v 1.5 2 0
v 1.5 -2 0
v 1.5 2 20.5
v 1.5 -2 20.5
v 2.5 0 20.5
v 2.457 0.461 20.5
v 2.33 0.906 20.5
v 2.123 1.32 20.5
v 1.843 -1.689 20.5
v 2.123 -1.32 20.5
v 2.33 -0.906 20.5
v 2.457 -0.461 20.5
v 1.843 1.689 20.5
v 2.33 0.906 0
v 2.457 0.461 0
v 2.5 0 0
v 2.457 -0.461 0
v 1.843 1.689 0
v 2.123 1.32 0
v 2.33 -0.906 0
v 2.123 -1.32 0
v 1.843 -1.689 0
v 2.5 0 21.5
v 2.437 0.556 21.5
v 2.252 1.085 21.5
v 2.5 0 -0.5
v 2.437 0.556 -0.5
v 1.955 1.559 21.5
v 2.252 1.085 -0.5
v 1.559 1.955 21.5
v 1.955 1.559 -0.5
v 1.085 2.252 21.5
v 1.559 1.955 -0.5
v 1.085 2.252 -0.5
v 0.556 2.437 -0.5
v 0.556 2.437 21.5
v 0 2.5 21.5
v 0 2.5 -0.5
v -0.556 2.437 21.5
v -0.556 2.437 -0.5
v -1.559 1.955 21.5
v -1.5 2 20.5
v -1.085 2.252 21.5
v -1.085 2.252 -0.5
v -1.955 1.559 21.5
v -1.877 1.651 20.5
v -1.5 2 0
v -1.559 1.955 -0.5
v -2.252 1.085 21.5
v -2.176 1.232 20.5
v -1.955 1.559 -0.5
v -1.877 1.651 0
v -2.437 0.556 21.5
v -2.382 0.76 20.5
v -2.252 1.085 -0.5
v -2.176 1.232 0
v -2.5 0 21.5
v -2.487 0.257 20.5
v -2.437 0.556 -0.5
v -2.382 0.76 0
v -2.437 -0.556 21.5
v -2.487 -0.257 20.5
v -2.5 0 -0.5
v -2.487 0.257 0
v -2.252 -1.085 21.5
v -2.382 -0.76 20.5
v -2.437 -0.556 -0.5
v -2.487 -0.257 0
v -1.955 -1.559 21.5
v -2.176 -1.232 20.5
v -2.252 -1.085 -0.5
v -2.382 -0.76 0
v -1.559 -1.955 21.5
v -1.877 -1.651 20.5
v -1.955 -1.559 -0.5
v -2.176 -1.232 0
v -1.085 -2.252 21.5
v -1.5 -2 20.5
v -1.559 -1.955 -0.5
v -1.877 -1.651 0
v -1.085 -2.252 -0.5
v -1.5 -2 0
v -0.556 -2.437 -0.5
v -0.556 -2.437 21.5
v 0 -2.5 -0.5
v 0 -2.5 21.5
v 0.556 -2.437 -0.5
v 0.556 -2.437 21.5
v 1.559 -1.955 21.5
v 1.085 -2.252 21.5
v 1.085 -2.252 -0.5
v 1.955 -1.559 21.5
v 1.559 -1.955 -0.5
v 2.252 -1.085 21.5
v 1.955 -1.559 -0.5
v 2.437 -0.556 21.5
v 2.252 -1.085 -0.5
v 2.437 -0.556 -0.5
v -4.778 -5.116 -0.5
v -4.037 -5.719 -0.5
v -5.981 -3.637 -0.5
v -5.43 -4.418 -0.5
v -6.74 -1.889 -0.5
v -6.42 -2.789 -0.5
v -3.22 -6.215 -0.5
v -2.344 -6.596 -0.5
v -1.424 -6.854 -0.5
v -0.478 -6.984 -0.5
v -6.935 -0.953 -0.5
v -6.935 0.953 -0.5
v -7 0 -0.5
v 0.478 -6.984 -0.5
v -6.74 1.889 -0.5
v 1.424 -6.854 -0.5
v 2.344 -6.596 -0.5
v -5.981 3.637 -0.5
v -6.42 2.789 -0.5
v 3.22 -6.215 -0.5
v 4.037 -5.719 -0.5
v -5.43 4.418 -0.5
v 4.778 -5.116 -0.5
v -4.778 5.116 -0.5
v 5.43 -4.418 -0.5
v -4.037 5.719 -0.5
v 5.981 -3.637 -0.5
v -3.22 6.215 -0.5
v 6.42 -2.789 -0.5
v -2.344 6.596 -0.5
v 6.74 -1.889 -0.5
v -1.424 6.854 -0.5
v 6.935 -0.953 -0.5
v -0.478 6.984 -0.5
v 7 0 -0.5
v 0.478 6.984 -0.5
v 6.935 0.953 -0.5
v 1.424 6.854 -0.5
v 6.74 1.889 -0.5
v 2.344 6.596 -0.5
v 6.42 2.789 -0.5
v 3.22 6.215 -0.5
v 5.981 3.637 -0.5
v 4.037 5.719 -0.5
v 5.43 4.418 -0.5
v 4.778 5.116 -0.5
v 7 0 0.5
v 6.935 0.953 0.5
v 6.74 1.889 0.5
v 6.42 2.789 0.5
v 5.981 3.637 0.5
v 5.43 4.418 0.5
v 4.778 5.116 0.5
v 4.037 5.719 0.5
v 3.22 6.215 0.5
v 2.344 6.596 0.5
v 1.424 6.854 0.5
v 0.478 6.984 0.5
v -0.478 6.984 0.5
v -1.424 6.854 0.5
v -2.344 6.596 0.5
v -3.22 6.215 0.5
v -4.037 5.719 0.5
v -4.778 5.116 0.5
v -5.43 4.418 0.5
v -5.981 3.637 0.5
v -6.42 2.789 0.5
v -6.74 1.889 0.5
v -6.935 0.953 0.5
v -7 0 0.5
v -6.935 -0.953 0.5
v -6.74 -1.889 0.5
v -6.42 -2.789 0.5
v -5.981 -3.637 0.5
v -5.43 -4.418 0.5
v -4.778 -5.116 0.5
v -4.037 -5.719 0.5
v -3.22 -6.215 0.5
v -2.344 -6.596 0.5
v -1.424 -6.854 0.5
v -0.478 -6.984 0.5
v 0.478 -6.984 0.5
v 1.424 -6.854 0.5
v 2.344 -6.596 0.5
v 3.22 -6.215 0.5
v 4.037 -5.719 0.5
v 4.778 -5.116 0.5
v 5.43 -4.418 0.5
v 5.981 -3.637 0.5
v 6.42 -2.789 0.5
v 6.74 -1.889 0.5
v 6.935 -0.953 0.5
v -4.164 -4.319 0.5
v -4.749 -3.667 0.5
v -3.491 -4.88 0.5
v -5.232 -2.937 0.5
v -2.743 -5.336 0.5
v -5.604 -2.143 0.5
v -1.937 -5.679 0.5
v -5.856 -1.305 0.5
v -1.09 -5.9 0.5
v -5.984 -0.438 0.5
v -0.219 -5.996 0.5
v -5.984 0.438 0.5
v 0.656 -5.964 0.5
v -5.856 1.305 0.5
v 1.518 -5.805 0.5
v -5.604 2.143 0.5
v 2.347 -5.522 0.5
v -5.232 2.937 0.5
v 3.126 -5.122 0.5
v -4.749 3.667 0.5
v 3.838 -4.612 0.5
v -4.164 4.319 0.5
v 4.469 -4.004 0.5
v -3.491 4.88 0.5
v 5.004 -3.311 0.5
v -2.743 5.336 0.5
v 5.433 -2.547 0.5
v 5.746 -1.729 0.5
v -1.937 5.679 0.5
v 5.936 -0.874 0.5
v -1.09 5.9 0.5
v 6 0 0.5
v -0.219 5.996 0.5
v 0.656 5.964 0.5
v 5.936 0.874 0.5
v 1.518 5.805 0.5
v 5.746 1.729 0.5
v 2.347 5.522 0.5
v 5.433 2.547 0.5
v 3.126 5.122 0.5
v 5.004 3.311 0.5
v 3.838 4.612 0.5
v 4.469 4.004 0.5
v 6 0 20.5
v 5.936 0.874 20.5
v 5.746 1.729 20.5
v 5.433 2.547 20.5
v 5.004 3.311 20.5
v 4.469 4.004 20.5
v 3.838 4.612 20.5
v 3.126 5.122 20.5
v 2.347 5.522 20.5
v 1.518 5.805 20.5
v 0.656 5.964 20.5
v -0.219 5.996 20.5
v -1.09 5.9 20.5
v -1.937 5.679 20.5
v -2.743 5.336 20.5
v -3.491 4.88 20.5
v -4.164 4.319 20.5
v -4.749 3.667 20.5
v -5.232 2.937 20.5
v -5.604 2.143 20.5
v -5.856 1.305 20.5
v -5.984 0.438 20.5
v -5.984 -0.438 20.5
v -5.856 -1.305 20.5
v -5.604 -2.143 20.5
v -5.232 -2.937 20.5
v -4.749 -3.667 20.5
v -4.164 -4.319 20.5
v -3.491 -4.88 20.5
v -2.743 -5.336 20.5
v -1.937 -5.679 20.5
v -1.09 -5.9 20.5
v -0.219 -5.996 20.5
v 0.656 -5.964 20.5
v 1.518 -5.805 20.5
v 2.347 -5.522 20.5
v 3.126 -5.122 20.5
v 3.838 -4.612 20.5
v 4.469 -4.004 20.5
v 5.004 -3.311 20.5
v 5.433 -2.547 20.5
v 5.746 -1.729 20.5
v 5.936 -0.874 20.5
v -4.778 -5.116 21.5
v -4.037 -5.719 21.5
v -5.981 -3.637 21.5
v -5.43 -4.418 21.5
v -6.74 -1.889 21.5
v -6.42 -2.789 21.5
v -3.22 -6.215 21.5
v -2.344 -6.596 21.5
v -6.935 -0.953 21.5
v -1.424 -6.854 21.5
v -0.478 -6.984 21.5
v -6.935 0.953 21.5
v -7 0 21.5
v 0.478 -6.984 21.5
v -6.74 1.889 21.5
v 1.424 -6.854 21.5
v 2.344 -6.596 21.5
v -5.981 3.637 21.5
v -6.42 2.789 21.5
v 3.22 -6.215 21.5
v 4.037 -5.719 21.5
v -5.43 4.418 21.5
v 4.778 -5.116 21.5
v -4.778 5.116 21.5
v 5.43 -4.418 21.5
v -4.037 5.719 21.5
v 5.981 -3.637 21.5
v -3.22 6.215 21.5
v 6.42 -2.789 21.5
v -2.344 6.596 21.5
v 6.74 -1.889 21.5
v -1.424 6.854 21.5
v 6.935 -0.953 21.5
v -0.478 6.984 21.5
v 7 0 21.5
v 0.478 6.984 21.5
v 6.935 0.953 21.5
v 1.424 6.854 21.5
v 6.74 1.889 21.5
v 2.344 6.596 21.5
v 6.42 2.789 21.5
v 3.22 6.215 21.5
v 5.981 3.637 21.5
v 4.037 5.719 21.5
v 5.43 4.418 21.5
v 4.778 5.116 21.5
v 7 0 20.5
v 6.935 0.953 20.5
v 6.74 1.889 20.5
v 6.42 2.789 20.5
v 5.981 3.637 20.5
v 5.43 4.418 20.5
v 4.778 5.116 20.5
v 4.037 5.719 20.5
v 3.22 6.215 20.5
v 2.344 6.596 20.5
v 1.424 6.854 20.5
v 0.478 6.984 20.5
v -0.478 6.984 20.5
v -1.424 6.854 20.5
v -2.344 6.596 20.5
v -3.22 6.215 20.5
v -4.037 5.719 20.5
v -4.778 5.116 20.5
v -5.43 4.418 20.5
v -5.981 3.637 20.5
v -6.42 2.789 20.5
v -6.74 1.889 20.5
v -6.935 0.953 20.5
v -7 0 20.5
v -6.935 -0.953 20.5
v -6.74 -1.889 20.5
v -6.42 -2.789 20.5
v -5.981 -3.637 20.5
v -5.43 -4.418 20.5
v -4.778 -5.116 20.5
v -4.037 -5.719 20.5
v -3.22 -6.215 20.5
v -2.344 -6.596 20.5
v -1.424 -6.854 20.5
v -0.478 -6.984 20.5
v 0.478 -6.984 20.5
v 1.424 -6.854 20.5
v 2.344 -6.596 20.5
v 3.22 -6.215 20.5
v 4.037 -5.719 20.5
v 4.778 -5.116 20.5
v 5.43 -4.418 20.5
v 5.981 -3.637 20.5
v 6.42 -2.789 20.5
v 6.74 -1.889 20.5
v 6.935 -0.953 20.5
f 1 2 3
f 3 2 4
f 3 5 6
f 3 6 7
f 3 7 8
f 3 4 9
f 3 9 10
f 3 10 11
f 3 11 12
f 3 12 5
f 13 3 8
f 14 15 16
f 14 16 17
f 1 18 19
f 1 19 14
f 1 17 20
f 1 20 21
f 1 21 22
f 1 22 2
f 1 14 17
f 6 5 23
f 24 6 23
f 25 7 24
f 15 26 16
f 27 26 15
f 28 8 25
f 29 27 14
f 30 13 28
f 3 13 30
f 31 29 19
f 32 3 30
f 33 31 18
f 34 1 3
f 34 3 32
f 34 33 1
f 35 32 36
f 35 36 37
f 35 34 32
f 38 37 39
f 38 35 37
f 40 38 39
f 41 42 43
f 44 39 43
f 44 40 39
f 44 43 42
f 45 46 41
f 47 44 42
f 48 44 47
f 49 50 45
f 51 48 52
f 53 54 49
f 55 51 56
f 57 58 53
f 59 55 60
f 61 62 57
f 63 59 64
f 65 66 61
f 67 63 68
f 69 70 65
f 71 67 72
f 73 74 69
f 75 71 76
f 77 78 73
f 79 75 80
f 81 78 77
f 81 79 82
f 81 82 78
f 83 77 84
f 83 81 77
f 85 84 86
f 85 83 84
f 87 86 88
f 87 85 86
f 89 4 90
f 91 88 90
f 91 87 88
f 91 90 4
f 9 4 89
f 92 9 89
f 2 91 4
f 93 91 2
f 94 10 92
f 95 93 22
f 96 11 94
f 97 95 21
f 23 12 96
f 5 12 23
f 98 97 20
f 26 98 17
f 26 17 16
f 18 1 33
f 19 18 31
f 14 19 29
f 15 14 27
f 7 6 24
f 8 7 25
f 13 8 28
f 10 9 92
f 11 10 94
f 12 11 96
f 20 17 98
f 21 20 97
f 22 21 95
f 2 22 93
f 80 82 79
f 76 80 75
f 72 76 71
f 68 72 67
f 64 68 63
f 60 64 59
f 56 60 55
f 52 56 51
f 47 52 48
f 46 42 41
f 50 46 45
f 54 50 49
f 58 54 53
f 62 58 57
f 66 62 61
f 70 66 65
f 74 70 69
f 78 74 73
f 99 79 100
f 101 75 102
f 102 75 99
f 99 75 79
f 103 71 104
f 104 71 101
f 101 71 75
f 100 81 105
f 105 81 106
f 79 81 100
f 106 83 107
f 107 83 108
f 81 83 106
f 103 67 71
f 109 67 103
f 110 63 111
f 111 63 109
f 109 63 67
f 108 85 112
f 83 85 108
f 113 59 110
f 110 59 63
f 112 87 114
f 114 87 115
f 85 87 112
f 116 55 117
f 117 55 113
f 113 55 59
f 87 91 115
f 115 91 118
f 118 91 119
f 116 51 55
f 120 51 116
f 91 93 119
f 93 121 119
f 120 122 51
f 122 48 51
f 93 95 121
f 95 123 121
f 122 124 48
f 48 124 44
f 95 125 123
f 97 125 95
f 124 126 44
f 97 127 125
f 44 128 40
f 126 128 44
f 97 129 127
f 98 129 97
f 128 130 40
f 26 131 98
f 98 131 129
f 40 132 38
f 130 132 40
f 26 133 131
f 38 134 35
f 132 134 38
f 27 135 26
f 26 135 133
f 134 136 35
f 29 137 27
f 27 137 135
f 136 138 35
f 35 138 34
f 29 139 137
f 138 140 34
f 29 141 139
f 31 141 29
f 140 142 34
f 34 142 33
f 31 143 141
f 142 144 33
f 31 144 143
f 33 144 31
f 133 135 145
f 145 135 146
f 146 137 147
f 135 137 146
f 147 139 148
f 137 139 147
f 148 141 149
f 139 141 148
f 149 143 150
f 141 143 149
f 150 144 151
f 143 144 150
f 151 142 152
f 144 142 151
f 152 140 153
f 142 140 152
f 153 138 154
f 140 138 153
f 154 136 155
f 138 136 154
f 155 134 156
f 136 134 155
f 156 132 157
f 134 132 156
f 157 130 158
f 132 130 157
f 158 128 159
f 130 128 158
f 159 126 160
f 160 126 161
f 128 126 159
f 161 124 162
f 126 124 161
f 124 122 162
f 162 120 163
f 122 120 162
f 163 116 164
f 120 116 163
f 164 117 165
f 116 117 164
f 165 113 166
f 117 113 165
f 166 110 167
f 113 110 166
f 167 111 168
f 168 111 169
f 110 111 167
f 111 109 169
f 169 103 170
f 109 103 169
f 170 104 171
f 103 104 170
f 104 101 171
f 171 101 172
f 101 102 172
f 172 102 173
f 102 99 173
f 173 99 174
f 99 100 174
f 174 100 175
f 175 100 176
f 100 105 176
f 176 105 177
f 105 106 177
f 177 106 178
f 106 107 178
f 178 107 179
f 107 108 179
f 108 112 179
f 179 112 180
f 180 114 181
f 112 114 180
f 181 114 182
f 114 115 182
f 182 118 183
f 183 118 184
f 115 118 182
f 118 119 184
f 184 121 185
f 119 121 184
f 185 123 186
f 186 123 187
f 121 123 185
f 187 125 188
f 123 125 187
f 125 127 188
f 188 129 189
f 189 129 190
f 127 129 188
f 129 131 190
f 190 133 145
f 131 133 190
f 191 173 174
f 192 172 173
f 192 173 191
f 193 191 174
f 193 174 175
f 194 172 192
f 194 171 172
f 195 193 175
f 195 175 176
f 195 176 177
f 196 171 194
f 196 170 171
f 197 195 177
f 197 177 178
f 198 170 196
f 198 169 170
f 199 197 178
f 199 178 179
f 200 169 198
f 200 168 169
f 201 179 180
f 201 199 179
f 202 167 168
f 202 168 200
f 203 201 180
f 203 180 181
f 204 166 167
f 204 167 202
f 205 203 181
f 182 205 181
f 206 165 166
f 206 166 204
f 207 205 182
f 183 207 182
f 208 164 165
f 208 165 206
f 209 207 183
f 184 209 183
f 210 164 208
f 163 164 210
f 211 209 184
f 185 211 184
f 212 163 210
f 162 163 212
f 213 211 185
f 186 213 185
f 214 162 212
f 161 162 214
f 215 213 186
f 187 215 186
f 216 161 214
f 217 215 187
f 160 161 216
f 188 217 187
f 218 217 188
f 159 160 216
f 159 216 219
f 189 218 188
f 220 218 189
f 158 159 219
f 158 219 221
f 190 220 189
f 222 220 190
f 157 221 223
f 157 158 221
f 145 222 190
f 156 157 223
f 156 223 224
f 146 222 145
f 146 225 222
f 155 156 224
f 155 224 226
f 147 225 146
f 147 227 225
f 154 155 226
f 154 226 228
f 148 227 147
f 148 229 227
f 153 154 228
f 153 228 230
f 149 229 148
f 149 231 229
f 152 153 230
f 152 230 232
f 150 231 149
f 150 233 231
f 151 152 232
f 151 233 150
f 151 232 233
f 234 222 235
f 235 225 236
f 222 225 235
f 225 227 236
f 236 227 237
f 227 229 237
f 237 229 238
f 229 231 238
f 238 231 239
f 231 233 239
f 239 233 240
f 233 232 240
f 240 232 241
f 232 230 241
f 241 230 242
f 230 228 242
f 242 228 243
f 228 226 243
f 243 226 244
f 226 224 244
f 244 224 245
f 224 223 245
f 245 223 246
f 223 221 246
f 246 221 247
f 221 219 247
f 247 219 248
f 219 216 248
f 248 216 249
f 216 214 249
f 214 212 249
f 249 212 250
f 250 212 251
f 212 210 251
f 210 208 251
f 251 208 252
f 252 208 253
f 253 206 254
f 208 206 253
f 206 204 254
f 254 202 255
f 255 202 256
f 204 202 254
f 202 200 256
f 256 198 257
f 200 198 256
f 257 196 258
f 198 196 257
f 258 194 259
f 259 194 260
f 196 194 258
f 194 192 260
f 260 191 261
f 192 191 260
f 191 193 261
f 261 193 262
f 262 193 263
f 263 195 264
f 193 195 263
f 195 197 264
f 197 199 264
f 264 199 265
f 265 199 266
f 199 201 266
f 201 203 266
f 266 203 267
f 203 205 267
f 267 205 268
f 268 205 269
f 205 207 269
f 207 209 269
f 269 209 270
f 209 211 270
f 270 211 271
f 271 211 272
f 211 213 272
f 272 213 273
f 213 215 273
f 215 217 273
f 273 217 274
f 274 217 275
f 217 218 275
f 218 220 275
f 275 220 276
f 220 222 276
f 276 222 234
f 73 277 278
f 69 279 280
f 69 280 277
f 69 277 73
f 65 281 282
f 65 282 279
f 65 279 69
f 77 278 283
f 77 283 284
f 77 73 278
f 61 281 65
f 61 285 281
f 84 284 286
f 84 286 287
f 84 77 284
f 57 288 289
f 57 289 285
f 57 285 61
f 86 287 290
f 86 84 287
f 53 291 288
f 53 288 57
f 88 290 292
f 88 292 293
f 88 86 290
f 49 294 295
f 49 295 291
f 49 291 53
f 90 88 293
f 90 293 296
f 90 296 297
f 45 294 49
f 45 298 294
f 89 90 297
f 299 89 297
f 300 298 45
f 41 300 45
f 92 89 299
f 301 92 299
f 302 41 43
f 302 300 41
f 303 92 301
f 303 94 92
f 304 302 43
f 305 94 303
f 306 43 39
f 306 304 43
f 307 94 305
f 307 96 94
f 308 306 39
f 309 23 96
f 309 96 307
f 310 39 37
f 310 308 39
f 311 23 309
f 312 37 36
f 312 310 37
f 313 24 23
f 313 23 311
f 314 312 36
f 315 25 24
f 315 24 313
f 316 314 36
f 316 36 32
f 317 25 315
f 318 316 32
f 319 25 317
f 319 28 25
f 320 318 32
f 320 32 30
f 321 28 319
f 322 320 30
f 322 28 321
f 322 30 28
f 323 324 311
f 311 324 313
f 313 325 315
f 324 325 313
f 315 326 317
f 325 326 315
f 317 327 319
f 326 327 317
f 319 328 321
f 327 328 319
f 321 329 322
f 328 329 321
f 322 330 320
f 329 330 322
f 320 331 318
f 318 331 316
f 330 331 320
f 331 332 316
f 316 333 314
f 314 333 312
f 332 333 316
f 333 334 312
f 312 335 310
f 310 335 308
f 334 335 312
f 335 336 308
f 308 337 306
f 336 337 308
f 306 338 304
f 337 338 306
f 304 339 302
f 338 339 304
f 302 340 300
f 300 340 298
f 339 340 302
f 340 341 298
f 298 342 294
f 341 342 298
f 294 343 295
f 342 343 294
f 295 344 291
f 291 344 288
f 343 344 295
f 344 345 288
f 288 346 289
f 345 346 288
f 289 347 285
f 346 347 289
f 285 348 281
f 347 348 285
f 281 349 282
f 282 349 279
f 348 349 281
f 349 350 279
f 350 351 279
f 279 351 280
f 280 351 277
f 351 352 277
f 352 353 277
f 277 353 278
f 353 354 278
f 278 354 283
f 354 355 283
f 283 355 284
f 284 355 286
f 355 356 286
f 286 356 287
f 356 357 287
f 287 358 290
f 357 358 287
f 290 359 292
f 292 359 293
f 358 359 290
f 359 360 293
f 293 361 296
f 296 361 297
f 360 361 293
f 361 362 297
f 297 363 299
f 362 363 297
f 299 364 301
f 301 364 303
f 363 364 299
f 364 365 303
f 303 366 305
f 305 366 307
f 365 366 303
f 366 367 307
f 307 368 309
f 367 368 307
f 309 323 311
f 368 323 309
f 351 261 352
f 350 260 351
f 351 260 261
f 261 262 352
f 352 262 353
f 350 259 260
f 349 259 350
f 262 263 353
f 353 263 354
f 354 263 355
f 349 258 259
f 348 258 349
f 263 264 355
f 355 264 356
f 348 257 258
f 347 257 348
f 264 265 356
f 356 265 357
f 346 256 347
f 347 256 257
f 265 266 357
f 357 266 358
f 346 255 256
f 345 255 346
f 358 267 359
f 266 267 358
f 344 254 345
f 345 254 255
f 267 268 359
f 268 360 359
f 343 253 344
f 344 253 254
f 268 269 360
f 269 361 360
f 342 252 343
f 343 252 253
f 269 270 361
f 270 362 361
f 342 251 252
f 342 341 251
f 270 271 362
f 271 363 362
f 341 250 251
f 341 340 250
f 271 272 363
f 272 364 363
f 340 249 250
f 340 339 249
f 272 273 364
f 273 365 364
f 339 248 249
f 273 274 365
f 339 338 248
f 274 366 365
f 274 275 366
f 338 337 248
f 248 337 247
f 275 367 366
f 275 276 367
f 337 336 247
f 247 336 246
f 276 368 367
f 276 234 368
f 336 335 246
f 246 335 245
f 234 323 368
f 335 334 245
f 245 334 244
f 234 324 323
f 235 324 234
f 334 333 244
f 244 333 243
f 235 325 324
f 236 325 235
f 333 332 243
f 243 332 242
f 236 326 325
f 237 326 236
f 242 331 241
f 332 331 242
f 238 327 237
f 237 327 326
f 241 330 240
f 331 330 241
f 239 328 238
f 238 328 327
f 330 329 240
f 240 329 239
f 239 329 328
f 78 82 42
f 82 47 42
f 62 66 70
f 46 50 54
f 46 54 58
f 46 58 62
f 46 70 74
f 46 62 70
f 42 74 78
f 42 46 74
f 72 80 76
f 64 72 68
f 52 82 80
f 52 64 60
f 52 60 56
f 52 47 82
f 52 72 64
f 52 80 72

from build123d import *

# Parameters (mm, degrees)
SKETCH_R      = 6
SKETCH_R_2    = 2.5
PAD_DEPTH     = 20.5
SKETCH001_W   = 5.557975
SKETCH001_H   = 5.932069
SKETCH001_W_2 = 3
SKETCH001_H_2 = 5
PAD001_DEPTH  = 20.5
SKETCH003_R   = 7
SKETCH003_R_2 = 2.5
PAD002_DEPTH  = 1
SKETCH004_R   = 7
SKETCH004_R_2 = 2.5
PAD003_DEPTH  = 0.5


with BuildPart() as part:
    # Sketch → Pad (new body)
    with BuildSketch(Plane.XY):
        Circle(SKETCH_R)
        Circle(SKETCH_R_2, mode=Mode.SUBTRACT)
    extrude(amount=PAD_DEPTH)

    # Sketch001 → Pad001 (join)
    with BuildSketch(Plane.XY):
        with Locations((0.008437, -0.106321)):
            Rectangle(SKETCH001_W, SKETCH001_H)
        Rectangle(SKETCH001_W_2, SKETCH001_H_2, mode=Mode.SUBTRACT)
    extrude(amount=PAD001_DEPTH)

    # Sketch003 (on Face5 of Pad001) → Pad002 (join)
    with BuildSketch(Plane.XY.offset(20.5)):
        Circle(SKETCH003_R)
        Circle(SKETCH003_R_2, mode=Mode.SUBTRACT)
    extrude(amount=PAD002_DEPTH)

    # Sketch004 → Pad003 (join, symmetric)
    with BuildSketch(Plane.XY):
        Circle(SKETCH004_R)
        Circle(SKETCH004_R_2, mode=Mode.SUBTRACT)
    extrude(amount=PAD003_DEPTH, both=True)


solid = part.part
